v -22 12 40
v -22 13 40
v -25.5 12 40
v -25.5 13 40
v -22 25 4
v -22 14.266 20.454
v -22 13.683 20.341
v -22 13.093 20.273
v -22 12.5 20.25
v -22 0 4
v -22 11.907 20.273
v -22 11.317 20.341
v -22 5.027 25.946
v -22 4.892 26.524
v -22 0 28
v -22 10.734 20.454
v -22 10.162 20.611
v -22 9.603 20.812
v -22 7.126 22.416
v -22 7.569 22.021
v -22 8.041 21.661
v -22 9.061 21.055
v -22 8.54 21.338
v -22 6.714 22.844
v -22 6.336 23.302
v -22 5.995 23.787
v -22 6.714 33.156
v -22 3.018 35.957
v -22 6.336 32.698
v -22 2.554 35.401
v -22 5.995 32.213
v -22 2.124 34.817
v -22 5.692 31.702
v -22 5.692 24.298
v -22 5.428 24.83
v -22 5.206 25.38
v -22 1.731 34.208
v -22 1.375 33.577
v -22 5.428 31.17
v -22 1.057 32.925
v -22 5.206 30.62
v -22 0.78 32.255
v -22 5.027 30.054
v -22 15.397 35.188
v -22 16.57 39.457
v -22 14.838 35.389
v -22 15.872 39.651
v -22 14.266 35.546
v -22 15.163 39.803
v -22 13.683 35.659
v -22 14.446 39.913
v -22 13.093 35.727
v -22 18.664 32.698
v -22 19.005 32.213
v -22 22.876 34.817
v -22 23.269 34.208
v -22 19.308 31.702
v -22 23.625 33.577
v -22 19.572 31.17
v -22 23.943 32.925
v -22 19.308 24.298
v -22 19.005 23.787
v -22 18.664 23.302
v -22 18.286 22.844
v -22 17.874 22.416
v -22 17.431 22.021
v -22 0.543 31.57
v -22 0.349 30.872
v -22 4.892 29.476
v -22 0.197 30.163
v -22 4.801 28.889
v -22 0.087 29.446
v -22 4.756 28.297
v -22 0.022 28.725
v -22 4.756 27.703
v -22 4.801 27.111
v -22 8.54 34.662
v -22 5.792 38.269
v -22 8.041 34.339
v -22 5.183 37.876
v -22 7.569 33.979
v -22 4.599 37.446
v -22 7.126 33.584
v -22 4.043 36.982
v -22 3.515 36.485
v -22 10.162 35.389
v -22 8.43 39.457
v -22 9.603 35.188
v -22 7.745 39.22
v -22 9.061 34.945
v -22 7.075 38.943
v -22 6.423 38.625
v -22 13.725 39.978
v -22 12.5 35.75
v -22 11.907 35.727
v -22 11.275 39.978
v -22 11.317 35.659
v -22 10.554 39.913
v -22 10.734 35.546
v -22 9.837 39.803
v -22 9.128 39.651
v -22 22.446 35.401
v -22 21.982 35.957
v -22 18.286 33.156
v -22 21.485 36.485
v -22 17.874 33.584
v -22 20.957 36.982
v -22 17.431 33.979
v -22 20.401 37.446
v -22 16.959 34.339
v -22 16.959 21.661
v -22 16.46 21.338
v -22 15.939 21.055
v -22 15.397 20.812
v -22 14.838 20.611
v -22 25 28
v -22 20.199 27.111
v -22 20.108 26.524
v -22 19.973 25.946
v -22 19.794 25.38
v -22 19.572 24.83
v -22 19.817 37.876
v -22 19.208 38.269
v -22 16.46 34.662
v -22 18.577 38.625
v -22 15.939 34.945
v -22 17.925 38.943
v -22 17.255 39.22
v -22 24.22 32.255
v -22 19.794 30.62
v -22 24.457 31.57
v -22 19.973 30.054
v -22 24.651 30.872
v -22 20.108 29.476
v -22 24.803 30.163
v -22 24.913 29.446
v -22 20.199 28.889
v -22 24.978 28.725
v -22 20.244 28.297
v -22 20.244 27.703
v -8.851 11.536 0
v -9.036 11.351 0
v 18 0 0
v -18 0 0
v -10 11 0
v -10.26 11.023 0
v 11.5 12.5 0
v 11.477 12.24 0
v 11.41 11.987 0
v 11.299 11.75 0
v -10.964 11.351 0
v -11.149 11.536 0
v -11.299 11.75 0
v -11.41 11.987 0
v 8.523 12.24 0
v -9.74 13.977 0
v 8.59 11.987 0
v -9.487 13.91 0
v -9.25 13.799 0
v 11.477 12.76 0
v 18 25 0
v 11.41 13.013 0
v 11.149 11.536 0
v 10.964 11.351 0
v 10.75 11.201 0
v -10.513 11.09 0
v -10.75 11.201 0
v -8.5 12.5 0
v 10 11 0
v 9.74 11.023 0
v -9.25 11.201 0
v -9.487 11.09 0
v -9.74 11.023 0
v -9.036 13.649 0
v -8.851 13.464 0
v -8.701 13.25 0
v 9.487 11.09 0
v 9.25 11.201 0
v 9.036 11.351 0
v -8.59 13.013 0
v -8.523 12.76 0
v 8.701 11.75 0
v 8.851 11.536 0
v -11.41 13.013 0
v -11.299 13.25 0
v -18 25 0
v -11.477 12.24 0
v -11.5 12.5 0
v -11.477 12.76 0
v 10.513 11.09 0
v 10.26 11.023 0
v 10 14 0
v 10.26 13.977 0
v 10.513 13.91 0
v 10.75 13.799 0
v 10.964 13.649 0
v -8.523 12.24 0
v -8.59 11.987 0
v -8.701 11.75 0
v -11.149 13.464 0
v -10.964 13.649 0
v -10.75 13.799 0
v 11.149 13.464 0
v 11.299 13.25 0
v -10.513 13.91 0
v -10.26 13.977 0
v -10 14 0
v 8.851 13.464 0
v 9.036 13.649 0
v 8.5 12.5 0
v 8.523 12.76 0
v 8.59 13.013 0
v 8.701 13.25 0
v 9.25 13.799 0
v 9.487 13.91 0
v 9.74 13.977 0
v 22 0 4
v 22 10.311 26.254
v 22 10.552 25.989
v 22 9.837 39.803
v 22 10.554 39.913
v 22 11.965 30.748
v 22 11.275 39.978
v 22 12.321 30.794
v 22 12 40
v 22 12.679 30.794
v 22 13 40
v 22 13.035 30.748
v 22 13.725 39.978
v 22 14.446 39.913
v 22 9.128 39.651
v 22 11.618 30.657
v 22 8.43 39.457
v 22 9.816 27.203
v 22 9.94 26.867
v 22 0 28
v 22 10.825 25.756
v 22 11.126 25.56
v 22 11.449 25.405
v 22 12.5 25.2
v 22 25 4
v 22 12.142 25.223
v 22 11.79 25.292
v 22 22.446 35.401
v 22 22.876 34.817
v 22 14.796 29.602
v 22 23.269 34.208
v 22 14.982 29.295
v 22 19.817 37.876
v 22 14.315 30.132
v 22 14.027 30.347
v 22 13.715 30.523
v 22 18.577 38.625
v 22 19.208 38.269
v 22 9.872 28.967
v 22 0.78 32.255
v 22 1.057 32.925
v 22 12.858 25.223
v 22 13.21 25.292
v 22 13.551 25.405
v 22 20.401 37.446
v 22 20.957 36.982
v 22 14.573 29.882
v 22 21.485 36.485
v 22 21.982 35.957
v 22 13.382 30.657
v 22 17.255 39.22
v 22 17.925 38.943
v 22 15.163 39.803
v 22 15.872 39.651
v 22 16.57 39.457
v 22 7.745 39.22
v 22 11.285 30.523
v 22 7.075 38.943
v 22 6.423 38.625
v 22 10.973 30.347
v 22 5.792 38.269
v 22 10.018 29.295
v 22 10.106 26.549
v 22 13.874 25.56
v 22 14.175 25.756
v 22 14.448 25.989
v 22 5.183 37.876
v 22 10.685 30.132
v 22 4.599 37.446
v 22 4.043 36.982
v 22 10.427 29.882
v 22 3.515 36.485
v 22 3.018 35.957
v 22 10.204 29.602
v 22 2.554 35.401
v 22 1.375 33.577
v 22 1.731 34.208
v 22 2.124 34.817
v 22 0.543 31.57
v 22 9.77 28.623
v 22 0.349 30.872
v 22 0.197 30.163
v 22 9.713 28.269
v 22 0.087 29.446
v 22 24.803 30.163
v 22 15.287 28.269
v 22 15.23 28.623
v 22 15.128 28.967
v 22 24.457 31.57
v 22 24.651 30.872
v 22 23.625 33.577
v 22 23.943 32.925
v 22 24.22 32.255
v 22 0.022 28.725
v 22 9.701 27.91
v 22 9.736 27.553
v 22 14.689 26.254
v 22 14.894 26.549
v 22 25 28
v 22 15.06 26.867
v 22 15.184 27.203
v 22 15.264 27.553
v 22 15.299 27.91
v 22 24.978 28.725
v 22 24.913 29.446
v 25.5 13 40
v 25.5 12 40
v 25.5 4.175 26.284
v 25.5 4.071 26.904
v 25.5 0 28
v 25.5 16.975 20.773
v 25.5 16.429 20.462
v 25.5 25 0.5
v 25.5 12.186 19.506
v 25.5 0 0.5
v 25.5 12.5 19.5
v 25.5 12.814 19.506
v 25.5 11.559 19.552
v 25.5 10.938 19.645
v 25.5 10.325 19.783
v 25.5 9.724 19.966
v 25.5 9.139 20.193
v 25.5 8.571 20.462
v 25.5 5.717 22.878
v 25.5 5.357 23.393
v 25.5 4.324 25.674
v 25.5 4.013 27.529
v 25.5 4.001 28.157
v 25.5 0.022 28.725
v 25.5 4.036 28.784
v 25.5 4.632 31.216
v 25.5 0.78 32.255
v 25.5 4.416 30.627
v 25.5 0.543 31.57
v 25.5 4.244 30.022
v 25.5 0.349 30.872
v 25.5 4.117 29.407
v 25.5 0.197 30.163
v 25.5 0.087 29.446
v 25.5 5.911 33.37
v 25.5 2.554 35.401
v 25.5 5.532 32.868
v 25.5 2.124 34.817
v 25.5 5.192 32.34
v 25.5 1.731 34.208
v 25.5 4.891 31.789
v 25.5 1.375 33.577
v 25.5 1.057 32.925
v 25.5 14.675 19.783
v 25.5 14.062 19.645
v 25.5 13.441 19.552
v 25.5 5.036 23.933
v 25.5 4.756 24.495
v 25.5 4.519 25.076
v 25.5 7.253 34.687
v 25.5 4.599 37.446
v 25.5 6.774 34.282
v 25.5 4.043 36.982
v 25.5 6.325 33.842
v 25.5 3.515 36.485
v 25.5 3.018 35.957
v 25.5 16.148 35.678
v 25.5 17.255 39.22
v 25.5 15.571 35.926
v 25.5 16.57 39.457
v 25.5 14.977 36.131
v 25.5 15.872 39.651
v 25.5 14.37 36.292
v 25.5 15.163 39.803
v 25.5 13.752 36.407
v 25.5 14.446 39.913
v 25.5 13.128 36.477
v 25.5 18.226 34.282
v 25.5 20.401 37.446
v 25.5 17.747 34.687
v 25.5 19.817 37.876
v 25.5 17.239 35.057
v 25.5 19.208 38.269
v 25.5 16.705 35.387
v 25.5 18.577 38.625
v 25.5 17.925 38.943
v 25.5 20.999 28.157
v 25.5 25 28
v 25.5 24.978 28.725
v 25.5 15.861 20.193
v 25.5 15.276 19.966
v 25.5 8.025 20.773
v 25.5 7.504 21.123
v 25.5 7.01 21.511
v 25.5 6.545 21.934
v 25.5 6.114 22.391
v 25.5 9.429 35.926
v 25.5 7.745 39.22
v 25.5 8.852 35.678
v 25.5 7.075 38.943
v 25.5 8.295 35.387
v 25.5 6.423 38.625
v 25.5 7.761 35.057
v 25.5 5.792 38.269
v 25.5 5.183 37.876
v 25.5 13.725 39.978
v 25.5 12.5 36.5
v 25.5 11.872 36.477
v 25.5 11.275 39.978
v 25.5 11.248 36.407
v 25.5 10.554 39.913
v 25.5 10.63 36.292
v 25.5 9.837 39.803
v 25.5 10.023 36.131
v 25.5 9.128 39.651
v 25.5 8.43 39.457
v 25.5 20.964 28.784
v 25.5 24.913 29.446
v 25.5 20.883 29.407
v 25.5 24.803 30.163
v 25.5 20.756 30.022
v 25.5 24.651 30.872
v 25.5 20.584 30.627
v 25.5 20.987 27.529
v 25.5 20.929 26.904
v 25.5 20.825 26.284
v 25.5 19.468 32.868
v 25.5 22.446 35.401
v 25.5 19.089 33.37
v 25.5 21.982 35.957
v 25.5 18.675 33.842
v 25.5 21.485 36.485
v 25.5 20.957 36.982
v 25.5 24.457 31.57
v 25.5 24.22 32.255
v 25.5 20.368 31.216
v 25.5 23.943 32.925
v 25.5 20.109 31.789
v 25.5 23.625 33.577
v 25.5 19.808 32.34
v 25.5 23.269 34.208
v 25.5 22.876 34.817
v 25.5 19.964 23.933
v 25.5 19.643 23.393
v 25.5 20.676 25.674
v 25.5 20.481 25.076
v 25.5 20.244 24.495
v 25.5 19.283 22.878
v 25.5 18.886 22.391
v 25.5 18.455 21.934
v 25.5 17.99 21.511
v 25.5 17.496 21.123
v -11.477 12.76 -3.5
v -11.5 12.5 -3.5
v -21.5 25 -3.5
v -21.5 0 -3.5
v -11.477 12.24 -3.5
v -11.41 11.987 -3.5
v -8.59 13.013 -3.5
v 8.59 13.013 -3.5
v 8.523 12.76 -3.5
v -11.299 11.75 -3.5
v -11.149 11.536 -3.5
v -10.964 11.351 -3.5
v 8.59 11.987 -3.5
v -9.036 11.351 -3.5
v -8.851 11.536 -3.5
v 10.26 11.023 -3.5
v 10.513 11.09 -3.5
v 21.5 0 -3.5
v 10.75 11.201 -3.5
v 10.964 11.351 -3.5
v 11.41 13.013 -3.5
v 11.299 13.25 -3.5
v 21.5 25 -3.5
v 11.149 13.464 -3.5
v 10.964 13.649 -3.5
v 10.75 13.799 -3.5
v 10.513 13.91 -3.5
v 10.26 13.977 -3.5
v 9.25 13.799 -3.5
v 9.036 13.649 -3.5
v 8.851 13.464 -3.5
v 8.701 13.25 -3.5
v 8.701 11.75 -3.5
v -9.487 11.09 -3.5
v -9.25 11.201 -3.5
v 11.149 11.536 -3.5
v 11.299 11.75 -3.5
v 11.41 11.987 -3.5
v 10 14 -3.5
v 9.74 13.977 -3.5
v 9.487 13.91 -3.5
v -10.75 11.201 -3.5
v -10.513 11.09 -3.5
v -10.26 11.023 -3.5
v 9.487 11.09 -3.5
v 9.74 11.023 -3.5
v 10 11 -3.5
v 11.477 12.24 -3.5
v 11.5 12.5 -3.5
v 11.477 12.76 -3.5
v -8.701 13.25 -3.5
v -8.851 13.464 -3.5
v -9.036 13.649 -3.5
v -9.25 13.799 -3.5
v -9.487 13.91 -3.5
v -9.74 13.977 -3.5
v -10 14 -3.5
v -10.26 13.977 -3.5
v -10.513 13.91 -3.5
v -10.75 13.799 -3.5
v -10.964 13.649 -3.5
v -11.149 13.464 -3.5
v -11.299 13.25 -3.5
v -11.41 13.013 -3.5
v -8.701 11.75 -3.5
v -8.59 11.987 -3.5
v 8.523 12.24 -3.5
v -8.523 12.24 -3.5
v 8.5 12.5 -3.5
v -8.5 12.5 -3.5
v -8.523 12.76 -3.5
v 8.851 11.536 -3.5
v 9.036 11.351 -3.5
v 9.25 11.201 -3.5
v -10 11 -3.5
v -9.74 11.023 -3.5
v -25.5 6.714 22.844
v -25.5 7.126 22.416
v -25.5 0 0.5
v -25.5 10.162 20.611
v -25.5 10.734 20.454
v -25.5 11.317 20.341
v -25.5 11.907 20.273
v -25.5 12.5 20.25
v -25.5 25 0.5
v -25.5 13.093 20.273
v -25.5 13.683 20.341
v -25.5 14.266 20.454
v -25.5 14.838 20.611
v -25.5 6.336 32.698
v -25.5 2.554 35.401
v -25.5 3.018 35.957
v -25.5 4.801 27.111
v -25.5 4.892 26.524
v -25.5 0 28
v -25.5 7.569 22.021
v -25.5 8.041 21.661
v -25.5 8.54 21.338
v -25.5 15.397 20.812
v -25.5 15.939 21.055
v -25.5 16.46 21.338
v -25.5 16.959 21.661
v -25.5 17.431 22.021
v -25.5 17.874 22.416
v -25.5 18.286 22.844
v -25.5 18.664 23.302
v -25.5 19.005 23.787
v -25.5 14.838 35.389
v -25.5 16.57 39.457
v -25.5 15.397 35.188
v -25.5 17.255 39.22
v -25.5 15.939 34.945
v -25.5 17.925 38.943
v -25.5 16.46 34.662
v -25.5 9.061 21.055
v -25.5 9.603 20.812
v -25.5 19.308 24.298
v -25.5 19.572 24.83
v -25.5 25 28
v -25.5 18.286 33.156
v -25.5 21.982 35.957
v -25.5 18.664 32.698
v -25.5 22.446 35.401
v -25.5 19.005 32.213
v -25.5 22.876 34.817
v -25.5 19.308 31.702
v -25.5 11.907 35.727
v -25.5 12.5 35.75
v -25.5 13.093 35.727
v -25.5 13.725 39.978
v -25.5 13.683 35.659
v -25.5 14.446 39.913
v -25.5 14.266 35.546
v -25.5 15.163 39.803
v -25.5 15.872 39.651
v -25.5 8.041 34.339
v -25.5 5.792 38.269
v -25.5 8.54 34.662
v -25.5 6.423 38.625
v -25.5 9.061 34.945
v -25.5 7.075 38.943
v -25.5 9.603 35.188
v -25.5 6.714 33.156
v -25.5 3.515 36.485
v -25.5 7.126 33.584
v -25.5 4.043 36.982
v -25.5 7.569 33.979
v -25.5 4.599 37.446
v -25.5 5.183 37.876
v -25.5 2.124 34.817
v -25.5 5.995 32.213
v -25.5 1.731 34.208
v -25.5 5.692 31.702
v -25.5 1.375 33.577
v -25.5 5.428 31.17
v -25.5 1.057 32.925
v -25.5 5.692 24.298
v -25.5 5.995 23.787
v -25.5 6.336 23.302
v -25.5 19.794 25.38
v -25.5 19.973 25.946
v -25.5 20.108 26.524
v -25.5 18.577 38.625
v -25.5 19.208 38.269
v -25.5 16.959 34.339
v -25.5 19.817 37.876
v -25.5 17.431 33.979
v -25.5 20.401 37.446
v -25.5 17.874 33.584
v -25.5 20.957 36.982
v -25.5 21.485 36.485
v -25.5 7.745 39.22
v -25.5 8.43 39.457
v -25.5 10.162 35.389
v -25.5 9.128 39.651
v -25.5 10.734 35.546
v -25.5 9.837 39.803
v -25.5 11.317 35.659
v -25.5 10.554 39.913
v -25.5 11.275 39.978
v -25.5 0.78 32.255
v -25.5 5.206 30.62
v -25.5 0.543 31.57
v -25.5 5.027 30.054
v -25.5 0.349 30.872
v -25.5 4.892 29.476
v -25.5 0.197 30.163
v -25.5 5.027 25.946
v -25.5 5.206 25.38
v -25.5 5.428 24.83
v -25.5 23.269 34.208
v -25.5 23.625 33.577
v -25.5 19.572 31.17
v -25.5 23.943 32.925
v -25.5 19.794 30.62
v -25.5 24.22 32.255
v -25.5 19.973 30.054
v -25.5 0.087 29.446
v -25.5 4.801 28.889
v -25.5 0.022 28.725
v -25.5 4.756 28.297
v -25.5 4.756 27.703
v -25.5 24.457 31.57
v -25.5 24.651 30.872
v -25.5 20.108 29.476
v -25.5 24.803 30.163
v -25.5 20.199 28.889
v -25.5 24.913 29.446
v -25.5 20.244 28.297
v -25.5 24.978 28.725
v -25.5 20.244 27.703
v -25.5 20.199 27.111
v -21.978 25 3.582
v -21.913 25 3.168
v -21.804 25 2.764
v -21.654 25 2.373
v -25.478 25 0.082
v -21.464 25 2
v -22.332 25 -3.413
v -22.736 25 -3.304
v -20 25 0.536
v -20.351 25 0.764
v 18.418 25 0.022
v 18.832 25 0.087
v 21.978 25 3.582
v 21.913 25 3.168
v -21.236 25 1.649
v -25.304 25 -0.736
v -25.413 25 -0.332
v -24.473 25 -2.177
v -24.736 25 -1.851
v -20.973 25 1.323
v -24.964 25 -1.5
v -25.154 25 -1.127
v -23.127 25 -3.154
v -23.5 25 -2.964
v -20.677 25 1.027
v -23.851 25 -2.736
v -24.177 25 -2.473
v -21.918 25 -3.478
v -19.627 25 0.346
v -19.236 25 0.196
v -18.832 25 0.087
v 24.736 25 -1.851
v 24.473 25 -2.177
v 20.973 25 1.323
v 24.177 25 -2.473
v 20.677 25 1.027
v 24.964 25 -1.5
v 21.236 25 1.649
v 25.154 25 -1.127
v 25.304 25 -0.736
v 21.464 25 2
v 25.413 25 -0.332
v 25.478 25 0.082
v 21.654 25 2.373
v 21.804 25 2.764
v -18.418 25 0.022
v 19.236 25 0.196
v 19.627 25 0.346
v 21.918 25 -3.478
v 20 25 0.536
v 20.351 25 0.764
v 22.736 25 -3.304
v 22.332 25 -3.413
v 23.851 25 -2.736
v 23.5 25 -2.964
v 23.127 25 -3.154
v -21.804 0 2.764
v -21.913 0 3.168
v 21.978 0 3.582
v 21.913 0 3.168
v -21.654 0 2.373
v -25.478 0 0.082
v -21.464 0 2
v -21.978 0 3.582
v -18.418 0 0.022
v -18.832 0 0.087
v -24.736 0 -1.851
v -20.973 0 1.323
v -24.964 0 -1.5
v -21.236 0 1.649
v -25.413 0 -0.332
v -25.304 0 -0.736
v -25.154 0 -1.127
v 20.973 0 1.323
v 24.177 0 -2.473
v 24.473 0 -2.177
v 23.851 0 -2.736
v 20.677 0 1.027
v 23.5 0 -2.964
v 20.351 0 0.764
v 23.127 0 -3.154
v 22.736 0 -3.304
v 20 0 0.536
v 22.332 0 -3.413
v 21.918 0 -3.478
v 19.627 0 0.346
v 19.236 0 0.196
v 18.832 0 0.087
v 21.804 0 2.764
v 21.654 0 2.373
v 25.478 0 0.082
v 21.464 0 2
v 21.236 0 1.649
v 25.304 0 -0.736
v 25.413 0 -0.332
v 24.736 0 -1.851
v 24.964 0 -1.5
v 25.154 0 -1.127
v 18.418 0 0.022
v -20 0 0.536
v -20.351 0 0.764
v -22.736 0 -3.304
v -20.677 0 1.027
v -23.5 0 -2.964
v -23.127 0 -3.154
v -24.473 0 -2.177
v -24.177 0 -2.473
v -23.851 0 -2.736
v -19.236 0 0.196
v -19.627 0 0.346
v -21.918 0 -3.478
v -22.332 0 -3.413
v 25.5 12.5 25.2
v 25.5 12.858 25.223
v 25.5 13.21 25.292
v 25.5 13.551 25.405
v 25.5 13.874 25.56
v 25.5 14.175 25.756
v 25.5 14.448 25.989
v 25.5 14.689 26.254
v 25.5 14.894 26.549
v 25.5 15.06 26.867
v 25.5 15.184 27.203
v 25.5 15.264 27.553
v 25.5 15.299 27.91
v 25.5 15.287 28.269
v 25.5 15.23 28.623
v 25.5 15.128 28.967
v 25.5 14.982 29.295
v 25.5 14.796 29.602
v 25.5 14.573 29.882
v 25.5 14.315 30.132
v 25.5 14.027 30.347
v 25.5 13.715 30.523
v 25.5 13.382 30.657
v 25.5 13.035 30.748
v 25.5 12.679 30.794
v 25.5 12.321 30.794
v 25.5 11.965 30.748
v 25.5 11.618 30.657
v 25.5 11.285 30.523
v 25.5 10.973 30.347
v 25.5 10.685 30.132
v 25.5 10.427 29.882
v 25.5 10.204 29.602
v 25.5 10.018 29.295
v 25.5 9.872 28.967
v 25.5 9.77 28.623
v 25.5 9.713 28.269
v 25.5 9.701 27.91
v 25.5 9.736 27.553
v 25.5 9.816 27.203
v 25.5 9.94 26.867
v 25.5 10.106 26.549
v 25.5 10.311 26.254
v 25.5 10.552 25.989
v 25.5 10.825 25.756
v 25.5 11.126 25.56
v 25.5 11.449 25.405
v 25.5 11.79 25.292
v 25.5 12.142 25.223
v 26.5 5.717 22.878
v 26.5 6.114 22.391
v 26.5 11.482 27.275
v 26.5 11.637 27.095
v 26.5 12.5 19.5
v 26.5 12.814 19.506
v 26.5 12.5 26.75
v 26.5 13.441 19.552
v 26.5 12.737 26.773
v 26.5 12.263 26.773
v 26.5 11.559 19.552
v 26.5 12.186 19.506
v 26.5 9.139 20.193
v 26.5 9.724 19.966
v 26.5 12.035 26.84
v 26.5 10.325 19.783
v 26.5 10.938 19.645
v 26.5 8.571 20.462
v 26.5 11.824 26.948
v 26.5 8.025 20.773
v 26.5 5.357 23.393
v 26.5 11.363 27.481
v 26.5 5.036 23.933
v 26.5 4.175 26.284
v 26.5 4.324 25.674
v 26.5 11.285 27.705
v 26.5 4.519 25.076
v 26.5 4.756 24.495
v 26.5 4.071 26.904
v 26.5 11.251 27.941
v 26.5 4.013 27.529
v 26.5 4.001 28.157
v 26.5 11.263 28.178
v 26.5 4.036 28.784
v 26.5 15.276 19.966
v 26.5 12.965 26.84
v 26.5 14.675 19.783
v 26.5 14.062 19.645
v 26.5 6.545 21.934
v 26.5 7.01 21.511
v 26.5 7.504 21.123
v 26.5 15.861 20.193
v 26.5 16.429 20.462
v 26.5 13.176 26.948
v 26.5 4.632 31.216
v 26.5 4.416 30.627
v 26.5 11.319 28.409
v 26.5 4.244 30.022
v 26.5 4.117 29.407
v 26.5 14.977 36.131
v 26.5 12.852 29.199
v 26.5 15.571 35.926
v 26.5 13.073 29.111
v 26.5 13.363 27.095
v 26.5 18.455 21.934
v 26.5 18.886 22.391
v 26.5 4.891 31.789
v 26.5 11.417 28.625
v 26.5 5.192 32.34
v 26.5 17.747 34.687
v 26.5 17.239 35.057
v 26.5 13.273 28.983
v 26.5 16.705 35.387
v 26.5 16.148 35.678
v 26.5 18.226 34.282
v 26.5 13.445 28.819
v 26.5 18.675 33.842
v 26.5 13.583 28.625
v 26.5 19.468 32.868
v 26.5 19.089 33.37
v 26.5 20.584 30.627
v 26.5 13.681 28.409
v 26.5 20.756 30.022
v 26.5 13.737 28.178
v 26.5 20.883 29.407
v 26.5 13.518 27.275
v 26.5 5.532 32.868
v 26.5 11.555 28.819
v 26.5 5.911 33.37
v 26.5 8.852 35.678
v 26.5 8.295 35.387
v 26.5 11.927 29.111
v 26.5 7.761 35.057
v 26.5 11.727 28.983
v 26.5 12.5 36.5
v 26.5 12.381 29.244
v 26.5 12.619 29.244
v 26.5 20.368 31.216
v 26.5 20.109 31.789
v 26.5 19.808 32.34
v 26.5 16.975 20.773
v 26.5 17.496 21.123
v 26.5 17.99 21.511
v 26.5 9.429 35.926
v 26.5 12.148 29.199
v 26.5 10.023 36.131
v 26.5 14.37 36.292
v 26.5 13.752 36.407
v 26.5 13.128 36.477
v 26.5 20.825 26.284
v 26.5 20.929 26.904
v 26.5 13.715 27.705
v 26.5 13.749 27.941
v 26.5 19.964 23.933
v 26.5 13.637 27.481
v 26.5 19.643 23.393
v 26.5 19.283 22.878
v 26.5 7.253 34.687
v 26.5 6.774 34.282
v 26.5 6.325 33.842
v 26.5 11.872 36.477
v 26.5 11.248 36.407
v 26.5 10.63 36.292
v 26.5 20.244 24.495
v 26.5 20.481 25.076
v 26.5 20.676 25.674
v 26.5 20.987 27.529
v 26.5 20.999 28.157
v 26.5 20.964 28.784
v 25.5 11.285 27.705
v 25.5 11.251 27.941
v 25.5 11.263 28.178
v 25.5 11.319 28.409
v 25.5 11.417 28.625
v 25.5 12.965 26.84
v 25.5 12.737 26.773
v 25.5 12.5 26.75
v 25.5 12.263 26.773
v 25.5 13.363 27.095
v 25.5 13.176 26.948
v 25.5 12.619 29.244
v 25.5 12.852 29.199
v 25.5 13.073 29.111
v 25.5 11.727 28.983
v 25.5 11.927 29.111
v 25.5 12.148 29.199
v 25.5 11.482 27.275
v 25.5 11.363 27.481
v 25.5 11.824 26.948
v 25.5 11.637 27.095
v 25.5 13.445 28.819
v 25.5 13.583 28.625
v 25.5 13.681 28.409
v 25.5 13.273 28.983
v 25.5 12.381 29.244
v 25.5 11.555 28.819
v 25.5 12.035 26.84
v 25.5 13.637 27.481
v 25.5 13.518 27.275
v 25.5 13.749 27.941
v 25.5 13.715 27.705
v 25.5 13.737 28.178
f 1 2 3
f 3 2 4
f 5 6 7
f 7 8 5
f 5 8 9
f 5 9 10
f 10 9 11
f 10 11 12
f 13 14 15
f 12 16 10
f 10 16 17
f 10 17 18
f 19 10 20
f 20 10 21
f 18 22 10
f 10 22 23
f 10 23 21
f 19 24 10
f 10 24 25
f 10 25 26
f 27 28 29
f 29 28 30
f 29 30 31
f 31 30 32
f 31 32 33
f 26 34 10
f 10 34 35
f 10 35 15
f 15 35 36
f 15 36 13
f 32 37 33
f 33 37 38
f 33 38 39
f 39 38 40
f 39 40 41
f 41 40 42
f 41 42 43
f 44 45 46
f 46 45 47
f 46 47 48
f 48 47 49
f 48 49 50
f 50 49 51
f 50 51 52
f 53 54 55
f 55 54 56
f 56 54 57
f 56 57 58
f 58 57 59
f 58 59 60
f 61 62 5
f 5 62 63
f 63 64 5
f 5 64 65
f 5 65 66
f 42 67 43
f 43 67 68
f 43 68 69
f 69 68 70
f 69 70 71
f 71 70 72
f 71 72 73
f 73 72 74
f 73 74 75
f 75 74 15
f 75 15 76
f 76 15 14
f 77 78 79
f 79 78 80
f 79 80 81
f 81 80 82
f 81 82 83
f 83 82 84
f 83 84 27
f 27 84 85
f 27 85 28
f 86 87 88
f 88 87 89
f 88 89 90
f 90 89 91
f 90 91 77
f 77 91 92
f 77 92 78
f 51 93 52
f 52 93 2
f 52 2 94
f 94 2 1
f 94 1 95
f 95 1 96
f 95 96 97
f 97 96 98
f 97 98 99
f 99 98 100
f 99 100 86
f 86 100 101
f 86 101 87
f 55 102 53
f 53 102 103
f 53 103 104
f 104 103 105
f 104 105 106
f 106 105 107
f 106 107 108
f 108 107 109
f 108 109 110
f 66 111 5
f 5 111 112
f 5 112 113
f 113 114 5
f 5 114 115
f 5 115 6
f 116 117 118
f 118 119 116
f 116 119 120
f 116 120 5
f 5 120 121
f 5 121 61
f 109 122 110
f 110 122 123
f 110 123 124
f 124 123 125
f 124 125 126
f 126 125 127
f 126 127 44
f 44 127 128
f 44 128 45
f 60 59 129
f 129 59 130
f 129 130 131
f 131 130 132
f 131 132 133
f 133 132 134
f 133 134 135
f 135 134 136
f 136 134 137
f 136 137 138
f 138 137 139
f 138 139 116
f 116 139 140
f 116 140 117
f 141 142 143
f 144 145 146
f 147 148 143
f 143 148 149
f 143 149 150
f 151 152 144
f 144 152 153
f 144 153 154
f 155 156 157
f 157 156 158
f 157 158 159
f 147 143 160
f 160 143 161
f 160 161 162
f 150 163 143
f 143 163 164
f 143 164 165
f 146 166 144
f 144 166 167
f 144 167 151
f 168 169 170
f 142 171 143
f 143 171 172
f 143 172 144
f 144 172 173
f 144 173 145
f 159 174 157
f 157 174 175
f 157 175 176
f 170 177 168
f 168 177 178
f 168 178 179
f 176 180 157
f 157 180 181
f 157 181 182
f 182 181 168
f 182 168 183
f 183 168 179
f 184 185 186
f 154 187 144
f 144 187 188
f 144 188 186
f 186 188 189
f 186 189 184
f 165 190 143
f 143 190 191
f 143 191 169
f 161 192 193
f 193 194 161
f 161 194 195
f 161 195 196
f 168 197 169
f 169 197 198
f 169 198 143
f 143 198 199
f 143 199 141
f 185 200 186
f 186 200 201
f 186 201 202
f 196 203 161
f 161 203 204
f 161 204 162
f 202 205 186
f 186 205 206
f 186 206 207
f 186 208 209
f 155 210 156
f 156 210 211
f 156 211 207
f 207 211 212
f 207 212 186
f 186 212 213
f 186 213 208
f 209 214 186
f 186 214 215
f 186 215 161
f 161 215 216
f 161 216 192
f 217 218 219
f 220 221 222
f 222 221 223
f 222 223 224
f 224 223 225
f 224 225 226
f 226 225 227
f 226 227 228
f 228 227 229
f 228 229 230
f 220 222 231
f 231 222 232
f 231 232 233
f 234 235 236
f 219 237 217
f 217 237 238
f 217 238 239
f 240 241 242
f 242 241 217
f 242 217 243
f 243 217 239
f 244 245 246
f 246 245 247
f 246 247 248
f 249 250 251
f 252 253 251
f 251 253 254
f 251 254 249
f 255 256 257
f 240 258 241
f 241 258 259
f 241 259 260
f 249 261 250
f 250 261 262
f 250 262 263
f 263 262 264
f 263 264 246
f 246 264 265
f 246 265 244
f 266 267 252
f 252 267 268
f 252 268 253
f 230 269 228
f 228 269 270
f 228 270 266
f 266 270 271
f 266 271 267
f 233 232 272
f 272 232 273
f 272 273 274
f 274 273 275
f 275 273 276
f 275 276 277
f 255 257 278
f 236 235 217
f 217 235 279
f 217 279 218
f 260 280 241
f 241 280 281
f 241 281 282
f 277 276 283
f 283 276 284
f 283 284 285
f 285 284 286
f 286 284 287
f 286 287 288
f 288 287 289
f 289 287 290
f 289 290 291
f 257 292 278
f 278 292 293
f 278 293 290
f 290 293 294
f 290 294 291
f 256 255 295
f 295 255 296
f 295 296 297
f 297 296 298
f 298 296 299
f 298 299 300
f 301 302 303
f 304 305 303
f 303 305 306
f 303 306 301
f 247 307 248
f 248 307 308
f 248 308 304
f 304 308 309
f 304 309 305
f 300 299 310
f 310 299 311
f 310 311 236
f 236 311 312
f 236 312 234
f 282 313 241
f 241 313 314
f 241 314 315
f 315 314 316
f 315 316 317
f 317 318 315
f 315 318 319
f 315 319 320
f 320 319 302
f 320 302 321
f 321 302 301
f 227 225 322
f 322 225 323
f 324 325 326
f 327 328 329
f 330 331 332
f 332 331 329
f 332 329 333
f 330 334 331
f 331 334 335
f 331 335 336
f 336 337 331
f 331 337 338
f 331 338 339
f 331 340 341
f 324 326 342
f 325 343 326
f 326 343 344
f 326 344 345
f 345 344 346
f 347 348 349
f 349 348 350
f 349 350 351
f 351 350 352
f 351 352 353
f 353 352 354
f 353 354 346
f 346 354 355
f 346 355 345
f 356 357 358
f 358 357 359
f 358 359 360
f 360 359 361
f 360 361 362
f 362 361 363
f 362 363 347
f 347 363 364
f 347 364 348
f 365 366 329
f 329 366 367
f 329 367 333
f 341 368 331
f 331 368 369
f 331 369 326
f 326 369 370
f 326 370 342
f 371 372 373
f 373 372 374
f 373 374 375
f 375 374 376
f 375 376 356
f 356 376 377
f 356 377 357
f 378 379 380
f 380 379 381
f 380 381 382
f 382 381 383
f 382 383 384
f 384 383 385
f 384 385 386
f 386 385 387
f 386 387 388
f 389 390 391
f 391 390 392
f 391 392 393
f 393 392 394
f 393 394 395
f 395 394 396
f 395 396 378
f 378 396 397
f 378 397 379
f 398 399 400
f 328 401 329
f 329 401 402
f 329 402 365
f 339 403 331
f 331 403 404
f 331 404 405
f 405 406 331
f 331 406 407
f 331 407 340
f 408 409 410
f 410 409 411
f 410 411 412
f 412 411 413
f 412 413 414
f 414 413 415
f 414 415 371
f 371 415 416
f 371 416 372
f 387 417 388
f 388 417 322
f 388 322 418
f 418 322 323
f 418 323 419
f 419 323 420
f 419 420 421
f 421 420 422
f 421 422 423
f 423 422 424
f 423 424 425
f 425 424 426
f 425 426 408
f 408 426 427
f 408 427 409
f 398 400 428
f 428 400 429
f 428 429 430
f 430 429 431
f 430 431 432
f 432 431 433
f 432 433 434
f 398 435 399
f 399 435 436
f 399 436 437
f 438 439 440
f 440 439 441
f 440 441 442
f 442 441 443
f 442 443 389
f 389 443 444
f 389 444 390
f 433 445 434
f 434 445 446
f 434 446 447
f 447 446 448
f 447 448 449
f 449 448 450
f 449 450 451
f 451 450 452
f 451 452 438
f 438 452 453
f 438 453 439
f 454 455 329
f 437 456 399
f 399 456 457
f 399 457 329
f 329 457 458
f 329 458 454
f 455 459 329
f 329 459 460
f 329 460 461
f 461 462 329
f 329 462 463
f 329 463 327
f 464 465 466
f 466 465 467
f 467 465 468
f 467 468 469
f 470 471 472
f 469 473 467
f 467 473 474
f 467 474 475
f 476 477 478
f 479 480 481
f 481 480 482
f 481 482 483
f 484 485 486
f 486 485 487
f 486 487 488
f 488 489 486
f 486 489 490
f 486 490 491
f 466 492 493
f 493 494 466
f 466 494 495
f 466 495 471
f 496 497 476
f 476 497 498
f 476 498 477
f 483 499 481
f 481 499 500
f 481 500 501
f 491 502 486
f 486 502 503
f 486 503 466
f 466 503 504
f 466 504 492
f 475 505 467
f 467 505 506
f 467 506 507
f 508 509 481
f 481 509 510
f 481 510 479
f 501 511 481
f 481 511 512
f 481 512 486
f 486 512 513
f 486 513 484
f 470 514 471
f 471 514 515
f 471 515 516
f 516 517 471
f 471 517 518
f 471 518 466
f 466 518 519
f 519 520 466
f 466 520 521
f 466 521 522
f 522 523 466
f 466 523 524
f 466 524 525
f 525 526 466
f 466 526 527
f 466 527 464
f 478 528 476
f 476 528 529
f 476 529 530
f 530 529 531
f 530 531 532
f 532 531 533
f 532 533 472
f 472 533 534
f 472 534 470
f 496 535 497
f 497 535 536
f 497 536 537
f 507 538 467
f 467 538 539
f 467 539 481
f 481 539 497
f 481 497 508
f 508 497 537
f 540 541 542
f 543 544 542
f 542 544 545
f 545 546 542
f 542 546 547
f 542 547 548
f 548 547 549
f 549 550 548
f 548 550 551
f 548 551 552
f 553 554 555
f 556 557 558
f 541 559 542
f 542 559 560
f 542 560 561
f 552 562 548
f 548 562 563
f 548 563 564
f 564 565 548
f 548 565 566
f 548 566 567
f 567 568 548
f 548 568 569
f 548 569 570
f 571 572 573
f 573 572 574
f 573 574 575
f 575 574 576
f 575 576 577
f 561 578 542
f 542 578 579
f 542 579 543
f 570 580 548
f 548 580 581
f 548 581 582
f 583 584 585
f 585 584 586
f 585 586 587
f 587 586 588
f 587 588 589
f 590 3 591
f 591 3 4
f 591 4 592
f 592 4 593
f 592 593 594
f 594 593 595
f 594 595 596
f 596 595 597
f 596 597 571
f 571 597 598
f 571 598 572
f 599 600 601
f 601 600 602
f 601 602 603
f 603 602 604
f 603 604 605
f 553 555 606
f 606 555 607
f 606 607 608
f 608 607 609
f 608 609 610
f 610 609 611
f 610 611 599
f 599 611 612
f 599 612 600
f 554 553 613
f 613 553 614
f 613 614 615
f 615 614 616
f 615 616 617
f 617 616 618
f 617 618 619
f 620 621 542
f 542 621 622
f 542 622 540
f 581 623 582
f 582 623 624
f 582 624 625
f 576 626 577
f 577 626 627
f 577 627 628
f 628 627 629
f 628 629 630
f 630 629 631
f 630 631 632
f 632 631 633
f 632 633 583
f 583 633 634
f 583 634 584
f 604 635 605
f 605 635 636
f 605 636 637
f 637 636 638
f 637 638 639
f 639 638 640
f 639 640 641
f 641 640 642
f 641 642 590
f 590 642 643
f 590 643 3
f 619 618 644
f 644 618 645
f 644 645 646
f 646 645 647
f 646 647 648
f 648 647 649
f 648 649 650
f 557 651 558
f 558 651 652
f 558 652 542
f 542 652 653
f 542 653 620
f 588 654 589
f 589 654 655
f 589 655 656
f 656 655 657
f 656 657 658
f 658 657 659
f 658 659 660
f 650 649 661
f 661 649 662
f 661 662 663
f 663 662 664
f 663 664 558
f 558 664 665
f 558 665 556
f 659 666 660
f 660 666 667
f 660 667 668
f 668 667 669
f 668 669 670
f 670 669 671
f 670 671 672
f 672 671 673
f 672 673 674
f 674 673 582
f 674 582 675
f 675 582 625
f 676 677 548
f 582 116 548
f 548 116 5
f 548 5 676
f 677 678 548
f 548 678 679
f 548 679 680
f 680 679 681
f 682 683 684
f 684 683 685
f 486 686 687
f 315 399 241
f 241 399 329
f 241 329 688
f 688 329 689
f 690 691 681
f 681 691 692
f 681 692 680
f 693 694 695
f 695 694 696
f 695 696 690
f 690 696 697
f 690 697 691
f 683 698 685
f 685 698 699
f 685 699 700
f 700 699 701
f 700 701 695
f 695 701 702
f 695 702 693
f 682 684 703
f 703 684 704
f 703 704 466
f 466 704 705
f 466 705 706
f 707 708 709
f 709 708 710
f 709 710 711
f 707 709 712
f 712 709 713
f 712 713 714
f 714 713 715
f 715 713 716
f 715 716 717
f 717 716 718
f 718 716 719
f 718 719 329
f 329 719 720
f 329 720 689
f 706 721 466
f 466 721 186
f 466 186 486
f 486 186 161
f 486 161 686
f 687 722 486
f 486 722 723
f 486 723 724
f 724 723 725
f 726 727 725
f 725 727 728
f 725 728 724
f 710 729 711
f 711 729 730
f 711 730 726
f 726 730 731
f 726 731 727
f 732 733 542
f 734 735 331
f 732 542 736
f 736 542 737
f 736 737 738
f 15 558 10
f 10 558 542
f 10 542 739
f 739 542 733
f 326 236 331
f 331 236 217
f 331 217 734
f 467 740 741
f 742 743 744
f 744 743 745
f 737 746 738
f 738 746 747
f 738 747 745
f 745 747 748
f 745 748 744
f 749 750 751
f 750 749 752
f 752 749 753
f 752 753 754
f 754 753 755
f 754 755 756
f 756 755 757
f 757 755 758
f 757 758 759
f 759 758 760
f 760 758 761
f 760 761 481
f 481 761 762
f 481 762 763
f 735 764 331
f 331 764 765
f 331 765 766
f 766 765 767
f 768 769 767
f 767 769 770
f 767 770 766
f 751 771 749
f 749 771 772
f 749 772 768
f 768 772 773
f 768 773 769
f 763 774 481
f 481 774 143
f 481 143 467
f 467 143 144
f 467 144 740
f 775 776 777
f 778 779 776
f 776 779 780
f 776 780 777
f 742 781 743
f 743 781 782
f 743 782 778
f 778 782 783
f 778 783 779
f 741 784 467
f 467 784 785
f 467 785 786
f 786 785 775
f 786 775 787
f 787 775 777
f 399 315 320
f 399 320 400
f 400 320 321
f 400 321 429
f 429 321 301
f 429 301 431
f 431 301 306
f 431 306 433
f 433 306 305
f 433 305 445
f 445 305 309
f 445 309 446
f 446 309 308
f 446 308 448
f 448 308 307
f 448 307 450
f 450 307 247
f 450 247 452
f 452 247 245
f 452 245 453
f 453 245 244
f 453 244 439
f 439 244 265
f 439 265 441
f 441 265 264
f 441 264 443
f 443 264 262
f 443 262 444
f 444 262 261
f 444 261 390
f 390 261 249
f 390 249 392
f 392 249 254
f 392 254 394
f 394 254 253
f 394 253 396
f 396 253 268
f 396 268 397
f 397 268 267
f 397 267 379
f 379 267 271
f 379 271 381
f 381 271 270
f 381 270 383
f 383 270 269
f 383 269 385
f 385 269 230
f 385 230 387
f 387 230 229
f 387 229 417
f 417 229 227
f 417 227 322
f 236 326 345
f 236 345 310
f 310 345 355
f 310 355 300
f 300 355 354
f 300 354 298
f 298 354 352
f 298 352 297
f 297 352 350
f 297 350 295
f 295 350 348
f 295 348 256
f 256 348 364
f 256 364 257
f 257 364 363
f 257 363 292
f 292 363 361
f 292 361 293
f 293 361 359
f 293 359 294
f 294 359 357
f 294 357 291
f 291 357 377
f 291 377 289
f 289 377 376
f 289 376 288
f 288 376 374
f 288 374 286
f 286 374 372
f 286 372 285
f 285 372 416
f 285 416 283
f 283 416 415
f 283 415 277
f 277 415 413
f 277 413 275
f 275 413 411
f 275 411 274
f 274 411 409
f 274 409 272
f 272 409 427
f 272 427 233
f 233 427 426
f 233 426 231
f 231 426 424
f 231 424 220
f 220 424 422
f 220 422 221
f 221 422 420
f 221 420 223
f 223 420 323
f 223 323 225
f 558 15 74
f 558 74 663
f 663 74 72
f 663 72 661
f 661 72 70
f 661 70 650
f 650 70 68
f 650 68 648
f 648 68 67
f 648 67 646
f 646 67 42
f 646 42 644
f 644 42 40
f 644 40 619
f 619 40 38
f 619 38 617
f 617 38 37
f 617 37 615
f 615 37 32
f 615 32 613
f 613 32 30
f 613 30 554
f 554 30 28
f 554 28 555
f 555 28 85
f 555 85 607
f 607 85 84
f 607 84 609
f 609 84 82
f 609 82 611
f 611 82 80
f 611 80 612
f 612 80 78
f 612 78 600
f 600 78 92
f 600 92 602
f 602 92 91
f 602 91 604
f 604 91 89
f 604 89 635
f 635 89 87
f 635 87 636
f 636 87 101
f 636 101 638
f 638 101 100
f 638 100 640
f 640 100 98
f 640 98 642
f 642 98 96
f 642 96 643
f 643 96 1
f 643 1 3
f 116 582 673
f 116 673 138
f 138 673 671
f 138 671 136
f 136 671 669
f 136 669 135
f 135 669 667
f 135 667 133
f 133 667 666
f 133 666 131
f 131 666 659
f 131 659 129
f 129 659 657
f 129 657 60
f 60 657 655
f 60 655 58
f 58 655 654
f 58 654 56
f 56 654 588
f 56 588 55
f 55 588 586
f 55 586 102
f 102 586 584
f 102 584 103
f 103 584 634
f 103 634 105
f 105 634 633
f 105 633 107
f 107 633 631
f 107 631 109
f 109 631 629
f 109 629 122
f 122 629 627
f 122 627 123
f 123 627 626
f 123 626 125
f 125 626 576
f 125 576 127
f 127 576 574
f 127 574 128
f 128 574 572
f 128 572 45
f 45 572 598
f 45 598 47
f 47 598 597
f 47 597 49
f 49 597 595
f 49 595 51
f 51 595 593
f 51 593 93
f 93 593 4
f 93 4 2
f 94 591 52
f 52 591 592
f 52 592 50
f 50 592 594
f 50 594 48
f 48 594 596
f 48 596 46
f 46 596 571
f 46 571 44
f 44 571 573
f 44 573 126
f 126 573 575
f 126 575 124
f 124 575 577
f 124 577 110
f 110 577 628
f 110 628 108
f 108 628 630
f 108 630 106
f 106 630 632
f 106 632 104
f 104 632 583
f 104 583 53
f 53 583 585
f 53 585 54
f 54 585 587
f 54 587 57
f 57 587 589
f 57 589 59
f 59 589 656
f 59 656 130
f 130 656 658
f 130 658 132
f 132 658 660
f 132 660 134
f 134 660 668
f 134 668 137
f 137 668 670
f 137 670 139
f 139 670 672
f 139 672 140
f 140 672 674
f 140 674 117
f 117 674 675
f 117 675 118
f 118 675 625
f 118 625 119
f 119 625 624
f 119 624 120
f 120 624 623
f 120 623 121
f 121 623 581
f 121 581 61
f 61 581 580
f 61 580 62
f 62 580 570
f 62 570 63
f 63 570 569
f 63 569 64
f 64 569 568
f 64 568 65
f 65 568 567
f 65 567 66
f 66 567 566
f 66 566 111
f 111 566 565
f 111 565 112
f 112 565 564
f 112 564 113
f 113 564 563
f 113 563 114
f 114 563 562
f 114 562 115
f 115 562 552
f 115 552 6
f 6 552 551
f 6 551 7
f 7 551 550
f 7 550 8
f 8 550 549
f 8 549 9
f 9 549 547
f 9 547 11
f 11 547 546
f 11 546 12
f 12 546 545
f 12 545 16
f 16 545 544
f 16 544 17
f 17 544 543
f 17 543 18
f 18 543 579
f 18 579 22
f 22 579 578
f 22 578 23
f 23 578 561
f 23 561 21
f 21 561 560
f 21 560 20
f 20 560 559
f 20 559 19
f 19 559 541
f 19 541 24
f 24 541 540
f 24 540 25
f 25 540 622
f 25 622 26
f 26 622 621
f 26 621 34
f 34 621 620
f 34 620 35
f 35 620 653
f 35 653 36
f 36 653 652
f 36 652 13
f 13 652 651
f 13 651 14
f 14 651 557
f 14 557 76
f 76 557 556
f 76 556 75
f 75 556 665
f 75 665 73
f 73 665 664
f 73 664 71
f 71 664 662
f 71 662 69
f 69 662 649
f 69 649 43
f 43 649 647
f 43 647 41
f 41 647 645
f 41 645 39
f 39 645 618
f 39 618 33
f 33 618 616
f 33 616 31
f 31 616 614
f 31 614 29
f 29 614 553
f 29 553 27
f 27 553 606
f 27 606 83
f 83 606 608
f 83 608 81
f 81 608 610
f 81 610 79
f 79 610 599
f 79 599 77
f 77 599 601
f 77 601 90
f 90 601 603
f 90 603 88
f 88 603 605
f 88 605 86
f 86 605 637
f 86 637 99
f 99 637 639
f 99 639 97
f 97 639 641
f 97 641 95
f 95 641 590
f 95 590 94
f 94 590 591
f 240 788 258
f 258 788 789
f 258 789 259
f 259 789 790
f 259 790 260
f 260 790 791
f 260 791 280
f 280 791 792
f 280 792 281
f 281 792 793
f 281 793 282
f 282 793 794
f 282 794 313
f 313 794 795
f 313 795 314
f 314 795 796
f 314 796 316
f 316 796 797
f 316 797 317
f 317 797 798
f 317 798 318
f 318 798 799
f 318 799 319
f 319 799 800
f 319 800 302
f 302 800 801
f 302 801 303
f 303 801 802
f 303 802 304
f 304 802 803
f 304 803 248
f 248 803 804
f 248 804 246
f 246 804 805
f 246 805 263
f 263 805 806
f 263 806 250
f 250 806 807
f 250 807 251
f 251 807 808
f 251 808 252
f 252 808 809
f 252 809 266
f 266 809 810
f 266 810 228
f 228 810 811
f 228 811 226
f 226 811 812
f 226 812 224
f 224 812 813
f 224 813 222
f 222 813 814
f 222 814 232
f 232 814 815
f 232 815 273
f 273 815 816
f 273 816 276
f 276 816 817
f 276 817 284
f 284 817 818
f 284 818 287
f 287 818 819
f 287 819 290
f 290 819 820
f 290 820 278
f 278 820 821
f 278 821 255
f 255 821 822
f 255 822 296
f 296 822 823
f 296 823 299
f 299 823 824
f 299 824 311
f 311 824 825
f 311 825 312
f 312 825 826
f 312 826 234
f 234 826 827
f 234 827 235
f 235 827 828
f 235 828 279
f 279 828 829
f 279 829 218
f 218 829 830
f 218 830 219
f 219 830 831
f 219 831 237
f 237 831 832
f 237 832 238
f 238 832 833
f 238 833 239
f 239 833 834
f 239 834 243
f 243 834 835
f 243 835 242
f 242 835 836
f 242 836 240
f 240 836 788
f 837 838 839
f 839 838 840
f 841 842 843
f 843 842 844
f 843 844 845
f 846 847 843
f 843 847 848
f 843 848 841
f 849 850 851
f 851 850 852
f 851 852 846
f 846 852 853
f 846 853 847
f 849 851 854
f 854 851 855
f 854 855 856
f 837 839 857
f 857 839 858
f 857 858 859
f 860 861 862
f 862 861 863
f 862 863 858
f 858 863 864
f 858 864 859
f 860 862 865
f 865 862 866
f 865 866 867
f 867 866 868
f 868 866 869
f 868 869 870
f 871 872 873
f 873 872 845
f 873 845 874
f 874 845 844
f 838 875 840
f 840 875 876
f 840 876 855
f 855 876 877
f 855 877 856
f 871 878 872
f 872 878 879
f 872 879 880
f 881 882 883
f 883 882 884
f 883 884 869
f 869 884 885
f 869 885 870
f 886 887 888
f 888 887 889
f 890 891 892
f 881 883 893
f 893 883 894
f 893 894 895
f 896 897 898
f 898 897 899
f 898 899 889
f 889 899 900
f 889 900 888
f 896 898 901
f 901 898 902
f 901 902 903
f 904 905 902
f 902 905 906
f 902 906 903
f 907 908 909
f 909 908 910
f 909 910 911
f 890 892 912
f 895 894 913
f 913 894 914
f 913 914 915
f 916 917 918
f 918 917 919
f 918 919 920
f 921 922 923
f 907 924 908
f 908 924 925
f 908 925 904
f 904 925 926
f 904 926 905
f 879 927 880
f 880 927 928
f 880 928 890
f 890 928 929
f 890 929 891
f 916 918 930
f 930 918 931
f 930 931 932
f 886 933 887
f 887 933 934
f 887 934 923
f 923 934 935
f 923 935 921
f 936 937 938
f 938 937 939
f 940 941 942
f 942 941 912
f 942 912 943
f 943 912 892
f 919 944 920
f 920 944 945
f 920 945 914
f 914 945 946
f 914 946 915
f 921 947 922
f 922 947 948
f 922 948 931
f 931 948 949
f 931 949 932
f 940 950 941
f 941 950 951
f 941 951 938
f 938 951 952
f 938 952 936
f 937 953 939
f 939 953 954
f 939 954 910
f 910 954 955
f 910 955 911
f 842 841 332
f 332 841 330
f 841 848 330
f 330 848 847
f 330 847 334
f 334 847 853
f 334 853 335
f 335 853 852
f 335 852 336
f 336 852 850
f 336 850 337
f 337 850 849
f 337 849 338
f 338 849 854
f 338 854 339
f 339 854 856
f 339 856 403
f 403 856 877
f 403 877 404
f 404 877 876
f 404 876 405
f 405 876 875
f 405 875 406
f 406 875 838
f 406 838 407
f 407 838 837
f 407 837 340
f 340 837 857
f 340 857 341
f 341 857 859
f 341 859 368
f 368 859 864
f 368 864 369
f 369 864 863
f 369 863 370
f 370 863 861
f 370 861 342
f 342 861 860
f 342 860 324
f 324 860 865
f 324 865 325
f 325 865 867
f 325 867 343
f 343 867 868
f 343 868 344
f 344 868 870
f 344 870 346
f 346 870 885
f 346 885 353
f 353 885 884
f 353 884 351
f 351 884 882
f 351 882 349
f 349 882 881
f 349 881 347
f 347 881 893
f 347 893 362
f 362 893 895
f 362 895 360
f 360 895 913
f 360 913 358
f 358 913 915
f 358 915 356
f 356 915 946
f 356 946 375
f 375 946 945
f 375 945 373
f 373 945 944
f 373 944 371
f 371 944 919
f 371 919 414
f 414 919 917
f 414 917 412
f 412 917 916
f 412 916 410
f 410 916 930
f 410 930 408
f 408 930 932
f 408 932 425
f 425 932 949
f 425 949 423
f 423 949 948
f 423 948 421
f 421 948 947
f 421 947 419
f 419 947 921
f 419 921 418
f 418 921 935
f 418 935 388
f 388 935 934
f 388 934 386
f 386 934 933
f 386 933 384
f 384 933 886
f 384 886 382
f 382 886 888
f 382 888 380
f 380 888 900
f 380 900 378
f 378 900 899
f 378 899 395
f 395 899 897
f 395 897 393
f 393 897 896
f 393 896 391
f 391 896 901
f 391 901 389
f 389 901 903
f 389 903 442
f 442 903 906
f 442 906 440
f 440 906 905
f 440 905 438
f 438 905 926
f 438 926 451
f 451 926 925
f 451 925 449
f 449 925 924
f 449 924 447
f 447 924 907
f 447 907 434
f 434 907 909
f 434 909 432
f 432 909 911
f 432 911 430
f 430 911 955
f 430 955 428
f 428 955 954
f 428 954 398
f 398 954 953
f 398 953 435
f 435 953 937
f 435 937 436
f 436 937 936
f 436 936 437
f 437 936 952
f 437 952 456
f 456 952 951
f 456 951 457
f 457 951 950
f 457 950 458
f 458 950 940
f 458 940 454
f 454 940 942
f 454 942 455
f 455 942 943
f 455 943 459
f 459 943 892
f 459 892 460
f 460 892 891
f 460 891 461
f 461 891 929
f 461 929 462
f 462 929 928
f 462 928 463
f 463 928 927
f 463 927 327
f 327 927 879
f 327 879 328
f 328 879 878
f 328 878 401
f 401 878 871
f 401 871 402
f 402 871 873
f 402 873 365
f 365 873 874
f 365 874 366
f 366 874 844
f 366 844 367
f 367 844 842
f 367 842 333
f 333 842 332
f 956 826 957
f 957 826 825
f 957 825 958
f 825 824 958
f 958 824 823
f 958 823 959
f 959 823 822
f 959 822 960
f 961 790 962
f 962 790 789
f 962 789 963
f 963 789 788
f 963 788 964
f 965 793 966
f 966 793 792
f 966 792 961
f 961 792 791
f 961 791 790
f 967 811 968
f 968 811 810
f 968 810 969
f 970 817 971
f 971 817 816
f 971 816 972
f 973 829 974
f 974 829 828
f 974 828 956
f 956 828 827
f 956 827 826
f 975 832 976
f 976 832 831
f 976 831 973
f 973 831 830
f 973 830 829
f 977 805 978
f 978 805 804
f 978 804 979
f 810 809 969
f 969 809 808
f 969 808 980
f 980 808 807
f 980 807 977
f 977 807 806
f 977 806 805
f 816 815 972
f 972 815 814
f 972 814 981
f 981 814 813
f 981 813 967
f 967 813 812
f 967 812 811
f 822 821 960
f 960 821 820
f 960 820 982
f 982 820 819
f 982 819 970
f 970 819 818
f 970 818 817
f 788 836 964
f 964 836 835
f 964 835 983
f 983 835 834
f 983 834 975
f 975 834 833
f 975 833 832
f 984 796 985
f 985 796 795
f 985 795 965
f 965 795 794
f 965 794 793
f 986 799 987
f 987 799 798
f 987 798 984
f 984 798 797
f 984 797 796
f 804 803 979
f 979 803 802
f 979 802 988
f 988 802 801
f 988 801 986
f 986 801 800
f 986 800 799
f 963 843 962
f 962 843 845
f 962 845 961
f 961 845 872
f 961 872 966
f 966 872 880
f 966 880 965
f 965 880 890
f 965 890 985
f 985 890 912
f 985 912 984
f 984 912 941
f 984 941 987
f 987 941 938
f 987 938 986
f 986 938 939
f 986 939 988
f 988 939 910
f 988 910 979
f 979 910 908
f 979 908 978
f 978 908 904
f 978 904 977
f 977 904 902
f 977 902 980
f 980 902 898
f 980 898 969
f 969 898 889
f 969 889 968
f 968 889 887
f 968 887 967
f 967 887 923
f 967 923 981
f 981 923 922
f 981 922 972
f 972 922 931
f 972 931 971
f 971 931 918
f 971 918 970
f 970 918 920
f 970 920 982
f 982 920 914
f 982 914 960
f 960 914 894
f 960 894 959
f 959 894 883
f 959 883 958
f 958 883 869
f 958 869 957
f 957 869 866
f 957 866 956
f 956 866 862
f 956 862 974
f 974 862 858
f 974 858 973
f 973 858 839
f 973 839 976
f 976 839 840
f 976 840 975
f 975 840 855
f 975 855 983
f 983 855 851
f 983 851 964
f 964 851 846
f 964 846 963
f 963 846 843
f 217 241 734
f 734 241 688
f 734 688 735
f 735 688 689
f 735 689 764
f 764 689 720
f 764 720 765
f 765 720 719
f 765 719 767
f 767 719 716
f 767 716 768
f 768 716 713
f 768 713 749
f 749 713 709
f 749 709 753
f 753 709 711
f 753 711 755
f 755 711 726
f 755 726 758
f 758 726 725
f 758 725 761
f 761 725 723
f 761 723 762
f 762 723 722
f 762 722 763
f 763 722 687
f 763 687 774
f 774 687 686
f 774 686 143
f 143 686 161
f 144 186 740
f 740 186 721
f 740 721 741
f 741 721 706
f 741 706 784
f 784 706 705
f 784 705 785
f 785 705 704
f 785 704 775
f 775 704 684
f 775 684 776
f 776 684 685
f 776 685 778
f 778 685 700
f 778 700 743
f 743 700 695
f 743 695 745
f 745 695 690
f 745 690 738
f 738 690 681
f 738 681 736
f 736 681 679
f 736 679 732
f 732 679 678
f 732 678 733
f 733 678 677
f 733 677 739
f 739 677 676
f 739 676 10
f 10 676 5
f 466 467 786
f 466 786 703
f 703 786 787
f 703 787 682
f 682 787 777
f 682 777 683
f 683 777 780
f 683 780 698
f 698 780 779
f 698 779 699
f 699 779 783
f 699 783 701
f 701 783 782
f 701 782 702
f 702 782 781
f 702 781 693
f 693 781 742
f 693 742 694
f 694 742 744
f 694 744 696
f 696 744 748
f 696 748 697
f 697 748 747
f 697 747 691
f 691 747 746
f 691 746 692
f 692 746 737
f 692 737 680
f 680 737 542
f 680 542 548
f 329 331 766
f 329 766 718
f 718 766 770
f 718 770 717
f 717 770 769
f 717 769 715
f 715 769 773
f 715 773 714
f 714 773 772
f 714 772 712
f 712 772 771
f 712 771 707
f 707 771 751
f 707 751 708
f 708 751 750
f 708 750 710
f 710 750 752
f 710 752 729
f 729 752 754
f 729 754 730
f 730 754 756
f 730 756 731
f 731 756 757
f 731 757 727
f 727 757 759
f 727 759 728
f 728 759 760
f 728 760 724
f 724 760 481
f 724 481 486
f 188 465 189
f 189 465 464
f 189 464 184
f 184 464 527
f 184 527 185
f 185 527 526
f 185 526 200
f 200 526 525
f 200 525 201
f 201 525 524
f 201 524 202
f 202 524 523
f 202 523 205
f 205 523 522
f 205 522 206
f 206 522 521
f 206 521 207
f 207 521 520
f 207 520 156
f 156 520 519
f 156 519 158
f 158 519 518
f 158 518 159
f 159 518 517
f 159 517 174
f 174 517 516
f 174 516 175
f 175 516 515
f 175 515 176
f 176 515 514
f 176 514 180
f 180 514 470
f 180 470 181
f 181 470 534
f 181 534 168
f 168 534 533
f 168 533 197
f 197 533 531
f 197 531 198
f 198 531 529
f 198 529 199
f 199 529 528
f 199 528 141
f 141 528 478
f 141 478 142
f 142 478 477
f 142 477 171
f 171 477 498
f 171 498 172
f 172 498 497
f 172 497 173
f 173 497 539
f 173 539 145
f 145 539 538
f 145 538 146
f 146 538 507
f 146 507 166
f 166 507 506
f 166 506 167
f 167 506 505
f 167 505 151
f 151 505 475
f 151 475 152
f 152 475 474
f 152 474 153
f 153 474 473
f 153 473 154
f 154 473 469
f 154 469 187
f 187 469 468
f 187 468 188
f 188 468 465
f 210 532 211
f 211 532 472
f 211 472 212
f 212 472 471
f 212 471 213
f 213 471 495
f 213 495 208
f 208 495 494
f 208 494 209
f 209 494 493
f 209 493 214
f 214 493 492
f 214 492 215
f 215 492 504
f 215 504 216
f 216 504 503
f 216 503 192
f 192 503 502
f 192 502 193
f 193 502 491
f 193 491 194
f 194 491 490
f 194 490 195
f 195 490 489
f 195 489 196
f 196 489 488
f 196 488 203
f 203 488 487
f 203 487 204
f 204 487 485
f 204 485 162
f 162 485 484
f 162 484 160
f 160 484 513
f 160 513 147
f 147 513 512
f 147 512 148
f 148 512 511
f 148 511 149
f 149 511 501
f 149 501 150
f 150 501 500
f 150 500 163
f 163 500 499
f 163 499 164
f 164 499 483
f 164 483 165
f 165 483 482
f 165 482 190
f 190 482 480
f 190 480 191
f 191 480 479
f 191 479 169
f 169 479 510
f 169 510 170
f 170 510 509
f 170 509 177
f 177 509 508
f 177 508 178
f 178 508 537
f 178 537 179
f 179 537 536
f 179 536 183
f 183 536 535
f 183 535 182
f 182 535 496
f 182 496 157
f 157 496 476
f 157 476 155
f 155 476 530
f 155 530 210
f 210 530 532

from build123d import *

# Parameters (mm, degrees)
SALIENTE_EXTRUIR1_DEPTH = 25
REDONDEO1_R             = 12
CROQUIS2_R              = 7.75
CORTAR_EXTRUIR1_DEPTH   = 10
CROQUIS3_R              = 2.8
CORTAR_EXTRUIR2_DEPTH   = 10
CROQUIS4_R              = 8.5
SALIENTE_EXTRUIR3_DEPTH = 1
CROQUIS5_R              = 1.25
CORTAR_EXTRUIR3_DEPTH   = 1
REDONDEO2_R             = 4
REDONDEO3_R             = 4
CROQUIS6_R              = 1.5
CORTAR_EXTRUIR4_DEPTH   = 10


with BuildPart() as part:
    # Croquis1 → Saliente-Extruir1 (new body)
    with BuildSketch(Plane(origin=(0, 0, 0), x_dir=(1, 0, 0), z_dir=(0, 1, 0))):
        Polygon((-25.5, -40), (-22, -40), (-22, 0), (22, 0), (22, -40), (25.5, -40), (25.5, 3.5), (-25.5, 3.5), align=None)
    extrude(amount=SALIENTE_EXTRUIR1_DEPTH)

    # Redondeo1
    redondeo1_edges = [part.edges().sort_by_distance(p)[0] for p in [
        (23.75, 0, 40),
        (-23.75, 0, 40),
        (23.75, 25, 40),
        (-23.75, 25, 40),
    ]]
    fillet(redondeo1_edges, radius=REDONDEO1_R)

    # Croquis2 → Cortar-Extruir1 (cut)
    with BuildSketch(Plane.ZY.offset(25.5)):
        with Locations((28, 12.5)):
            Circle(CROQUIS2_R)
    extrude(amount=-CORTAR_EXTRUIR1_DEPTH, mode=Mode.SUBTRACT)

    # Croquis3 → Cortar-Extruir2 (cut)
    with BuildSketch(Plane(origin=(25.5, 0, 0), x_dir=(0, 0, -1), z_dir=(1, 0, 0))):
        with Locations((-28, 12.5)):
            Circle(CROQUIS3_R)
    extrude(amount=-CORTAR_EXTRUIR2_DEPTH, mode=Mode.SUBTRACT)

    # Croquis4 → Saliente-Extruir3 (add)
    with BuildSketch(Plane(origin=(25.5, 0, 0), x_dir=(0, 0, -1), z_dir=(1, 0, 0))):
        with Locations((-28, 12.5)):
            Circle(CROQUIS4_R)
    extrude(amount=SALIENTE_EXTRUIR3_DEPTH)

    # Croquis5 → Cortar-Extruir3 (cut)
    with BuildSketch(Plane(origin=(26.5, 0, 0), x_dir=(0, 0, -1), z_dir=(1, 0, 0))):
        with Locations((-28, 12.5)):
            Circle(CROQUIS5_R)
    extrude(amount=-CORTAR_EXTRUIR3_DEPTH, mode=Mode.SUBTRACT)

    # Redondeo2
    redondeo2_edges = [part.edges().sort_by_distance(p)[0] for p in [
        (22, 12.5, 0),
        (-22, 12.5, 0),
    ]]
    fillet(redondeo2_edges, radius=REDONDEO2_R)

    # Redondeo3
    redondeo3_edges = [part.edges().sort_by_distance(p)[0] for p in [
        (-25.5, 12.5, -3.5),
        (25.5, 12.5, -3.5),
    ]]
    fillet(redondeo3_edges, radius=REDONDEO3_R)

    # Croquis6 → Cortar-Extruir4 (cut)
    with BuildSketch(Plane(origin=(0, 0, -3.5), x_dir=(-1, 0, 0), z_dir=(0, 0, -1))):
        with Locations((-10, 12.5)):
            Circle(CROQUIS6_R)
        with Locations((10, 12.5)):
            Circle(CROQUIS6_R)
    extrude(amount=-CORTAR_EXTRUIR4_DEPTH, mode=Mode.SUBTRACT)


solid = part.part
